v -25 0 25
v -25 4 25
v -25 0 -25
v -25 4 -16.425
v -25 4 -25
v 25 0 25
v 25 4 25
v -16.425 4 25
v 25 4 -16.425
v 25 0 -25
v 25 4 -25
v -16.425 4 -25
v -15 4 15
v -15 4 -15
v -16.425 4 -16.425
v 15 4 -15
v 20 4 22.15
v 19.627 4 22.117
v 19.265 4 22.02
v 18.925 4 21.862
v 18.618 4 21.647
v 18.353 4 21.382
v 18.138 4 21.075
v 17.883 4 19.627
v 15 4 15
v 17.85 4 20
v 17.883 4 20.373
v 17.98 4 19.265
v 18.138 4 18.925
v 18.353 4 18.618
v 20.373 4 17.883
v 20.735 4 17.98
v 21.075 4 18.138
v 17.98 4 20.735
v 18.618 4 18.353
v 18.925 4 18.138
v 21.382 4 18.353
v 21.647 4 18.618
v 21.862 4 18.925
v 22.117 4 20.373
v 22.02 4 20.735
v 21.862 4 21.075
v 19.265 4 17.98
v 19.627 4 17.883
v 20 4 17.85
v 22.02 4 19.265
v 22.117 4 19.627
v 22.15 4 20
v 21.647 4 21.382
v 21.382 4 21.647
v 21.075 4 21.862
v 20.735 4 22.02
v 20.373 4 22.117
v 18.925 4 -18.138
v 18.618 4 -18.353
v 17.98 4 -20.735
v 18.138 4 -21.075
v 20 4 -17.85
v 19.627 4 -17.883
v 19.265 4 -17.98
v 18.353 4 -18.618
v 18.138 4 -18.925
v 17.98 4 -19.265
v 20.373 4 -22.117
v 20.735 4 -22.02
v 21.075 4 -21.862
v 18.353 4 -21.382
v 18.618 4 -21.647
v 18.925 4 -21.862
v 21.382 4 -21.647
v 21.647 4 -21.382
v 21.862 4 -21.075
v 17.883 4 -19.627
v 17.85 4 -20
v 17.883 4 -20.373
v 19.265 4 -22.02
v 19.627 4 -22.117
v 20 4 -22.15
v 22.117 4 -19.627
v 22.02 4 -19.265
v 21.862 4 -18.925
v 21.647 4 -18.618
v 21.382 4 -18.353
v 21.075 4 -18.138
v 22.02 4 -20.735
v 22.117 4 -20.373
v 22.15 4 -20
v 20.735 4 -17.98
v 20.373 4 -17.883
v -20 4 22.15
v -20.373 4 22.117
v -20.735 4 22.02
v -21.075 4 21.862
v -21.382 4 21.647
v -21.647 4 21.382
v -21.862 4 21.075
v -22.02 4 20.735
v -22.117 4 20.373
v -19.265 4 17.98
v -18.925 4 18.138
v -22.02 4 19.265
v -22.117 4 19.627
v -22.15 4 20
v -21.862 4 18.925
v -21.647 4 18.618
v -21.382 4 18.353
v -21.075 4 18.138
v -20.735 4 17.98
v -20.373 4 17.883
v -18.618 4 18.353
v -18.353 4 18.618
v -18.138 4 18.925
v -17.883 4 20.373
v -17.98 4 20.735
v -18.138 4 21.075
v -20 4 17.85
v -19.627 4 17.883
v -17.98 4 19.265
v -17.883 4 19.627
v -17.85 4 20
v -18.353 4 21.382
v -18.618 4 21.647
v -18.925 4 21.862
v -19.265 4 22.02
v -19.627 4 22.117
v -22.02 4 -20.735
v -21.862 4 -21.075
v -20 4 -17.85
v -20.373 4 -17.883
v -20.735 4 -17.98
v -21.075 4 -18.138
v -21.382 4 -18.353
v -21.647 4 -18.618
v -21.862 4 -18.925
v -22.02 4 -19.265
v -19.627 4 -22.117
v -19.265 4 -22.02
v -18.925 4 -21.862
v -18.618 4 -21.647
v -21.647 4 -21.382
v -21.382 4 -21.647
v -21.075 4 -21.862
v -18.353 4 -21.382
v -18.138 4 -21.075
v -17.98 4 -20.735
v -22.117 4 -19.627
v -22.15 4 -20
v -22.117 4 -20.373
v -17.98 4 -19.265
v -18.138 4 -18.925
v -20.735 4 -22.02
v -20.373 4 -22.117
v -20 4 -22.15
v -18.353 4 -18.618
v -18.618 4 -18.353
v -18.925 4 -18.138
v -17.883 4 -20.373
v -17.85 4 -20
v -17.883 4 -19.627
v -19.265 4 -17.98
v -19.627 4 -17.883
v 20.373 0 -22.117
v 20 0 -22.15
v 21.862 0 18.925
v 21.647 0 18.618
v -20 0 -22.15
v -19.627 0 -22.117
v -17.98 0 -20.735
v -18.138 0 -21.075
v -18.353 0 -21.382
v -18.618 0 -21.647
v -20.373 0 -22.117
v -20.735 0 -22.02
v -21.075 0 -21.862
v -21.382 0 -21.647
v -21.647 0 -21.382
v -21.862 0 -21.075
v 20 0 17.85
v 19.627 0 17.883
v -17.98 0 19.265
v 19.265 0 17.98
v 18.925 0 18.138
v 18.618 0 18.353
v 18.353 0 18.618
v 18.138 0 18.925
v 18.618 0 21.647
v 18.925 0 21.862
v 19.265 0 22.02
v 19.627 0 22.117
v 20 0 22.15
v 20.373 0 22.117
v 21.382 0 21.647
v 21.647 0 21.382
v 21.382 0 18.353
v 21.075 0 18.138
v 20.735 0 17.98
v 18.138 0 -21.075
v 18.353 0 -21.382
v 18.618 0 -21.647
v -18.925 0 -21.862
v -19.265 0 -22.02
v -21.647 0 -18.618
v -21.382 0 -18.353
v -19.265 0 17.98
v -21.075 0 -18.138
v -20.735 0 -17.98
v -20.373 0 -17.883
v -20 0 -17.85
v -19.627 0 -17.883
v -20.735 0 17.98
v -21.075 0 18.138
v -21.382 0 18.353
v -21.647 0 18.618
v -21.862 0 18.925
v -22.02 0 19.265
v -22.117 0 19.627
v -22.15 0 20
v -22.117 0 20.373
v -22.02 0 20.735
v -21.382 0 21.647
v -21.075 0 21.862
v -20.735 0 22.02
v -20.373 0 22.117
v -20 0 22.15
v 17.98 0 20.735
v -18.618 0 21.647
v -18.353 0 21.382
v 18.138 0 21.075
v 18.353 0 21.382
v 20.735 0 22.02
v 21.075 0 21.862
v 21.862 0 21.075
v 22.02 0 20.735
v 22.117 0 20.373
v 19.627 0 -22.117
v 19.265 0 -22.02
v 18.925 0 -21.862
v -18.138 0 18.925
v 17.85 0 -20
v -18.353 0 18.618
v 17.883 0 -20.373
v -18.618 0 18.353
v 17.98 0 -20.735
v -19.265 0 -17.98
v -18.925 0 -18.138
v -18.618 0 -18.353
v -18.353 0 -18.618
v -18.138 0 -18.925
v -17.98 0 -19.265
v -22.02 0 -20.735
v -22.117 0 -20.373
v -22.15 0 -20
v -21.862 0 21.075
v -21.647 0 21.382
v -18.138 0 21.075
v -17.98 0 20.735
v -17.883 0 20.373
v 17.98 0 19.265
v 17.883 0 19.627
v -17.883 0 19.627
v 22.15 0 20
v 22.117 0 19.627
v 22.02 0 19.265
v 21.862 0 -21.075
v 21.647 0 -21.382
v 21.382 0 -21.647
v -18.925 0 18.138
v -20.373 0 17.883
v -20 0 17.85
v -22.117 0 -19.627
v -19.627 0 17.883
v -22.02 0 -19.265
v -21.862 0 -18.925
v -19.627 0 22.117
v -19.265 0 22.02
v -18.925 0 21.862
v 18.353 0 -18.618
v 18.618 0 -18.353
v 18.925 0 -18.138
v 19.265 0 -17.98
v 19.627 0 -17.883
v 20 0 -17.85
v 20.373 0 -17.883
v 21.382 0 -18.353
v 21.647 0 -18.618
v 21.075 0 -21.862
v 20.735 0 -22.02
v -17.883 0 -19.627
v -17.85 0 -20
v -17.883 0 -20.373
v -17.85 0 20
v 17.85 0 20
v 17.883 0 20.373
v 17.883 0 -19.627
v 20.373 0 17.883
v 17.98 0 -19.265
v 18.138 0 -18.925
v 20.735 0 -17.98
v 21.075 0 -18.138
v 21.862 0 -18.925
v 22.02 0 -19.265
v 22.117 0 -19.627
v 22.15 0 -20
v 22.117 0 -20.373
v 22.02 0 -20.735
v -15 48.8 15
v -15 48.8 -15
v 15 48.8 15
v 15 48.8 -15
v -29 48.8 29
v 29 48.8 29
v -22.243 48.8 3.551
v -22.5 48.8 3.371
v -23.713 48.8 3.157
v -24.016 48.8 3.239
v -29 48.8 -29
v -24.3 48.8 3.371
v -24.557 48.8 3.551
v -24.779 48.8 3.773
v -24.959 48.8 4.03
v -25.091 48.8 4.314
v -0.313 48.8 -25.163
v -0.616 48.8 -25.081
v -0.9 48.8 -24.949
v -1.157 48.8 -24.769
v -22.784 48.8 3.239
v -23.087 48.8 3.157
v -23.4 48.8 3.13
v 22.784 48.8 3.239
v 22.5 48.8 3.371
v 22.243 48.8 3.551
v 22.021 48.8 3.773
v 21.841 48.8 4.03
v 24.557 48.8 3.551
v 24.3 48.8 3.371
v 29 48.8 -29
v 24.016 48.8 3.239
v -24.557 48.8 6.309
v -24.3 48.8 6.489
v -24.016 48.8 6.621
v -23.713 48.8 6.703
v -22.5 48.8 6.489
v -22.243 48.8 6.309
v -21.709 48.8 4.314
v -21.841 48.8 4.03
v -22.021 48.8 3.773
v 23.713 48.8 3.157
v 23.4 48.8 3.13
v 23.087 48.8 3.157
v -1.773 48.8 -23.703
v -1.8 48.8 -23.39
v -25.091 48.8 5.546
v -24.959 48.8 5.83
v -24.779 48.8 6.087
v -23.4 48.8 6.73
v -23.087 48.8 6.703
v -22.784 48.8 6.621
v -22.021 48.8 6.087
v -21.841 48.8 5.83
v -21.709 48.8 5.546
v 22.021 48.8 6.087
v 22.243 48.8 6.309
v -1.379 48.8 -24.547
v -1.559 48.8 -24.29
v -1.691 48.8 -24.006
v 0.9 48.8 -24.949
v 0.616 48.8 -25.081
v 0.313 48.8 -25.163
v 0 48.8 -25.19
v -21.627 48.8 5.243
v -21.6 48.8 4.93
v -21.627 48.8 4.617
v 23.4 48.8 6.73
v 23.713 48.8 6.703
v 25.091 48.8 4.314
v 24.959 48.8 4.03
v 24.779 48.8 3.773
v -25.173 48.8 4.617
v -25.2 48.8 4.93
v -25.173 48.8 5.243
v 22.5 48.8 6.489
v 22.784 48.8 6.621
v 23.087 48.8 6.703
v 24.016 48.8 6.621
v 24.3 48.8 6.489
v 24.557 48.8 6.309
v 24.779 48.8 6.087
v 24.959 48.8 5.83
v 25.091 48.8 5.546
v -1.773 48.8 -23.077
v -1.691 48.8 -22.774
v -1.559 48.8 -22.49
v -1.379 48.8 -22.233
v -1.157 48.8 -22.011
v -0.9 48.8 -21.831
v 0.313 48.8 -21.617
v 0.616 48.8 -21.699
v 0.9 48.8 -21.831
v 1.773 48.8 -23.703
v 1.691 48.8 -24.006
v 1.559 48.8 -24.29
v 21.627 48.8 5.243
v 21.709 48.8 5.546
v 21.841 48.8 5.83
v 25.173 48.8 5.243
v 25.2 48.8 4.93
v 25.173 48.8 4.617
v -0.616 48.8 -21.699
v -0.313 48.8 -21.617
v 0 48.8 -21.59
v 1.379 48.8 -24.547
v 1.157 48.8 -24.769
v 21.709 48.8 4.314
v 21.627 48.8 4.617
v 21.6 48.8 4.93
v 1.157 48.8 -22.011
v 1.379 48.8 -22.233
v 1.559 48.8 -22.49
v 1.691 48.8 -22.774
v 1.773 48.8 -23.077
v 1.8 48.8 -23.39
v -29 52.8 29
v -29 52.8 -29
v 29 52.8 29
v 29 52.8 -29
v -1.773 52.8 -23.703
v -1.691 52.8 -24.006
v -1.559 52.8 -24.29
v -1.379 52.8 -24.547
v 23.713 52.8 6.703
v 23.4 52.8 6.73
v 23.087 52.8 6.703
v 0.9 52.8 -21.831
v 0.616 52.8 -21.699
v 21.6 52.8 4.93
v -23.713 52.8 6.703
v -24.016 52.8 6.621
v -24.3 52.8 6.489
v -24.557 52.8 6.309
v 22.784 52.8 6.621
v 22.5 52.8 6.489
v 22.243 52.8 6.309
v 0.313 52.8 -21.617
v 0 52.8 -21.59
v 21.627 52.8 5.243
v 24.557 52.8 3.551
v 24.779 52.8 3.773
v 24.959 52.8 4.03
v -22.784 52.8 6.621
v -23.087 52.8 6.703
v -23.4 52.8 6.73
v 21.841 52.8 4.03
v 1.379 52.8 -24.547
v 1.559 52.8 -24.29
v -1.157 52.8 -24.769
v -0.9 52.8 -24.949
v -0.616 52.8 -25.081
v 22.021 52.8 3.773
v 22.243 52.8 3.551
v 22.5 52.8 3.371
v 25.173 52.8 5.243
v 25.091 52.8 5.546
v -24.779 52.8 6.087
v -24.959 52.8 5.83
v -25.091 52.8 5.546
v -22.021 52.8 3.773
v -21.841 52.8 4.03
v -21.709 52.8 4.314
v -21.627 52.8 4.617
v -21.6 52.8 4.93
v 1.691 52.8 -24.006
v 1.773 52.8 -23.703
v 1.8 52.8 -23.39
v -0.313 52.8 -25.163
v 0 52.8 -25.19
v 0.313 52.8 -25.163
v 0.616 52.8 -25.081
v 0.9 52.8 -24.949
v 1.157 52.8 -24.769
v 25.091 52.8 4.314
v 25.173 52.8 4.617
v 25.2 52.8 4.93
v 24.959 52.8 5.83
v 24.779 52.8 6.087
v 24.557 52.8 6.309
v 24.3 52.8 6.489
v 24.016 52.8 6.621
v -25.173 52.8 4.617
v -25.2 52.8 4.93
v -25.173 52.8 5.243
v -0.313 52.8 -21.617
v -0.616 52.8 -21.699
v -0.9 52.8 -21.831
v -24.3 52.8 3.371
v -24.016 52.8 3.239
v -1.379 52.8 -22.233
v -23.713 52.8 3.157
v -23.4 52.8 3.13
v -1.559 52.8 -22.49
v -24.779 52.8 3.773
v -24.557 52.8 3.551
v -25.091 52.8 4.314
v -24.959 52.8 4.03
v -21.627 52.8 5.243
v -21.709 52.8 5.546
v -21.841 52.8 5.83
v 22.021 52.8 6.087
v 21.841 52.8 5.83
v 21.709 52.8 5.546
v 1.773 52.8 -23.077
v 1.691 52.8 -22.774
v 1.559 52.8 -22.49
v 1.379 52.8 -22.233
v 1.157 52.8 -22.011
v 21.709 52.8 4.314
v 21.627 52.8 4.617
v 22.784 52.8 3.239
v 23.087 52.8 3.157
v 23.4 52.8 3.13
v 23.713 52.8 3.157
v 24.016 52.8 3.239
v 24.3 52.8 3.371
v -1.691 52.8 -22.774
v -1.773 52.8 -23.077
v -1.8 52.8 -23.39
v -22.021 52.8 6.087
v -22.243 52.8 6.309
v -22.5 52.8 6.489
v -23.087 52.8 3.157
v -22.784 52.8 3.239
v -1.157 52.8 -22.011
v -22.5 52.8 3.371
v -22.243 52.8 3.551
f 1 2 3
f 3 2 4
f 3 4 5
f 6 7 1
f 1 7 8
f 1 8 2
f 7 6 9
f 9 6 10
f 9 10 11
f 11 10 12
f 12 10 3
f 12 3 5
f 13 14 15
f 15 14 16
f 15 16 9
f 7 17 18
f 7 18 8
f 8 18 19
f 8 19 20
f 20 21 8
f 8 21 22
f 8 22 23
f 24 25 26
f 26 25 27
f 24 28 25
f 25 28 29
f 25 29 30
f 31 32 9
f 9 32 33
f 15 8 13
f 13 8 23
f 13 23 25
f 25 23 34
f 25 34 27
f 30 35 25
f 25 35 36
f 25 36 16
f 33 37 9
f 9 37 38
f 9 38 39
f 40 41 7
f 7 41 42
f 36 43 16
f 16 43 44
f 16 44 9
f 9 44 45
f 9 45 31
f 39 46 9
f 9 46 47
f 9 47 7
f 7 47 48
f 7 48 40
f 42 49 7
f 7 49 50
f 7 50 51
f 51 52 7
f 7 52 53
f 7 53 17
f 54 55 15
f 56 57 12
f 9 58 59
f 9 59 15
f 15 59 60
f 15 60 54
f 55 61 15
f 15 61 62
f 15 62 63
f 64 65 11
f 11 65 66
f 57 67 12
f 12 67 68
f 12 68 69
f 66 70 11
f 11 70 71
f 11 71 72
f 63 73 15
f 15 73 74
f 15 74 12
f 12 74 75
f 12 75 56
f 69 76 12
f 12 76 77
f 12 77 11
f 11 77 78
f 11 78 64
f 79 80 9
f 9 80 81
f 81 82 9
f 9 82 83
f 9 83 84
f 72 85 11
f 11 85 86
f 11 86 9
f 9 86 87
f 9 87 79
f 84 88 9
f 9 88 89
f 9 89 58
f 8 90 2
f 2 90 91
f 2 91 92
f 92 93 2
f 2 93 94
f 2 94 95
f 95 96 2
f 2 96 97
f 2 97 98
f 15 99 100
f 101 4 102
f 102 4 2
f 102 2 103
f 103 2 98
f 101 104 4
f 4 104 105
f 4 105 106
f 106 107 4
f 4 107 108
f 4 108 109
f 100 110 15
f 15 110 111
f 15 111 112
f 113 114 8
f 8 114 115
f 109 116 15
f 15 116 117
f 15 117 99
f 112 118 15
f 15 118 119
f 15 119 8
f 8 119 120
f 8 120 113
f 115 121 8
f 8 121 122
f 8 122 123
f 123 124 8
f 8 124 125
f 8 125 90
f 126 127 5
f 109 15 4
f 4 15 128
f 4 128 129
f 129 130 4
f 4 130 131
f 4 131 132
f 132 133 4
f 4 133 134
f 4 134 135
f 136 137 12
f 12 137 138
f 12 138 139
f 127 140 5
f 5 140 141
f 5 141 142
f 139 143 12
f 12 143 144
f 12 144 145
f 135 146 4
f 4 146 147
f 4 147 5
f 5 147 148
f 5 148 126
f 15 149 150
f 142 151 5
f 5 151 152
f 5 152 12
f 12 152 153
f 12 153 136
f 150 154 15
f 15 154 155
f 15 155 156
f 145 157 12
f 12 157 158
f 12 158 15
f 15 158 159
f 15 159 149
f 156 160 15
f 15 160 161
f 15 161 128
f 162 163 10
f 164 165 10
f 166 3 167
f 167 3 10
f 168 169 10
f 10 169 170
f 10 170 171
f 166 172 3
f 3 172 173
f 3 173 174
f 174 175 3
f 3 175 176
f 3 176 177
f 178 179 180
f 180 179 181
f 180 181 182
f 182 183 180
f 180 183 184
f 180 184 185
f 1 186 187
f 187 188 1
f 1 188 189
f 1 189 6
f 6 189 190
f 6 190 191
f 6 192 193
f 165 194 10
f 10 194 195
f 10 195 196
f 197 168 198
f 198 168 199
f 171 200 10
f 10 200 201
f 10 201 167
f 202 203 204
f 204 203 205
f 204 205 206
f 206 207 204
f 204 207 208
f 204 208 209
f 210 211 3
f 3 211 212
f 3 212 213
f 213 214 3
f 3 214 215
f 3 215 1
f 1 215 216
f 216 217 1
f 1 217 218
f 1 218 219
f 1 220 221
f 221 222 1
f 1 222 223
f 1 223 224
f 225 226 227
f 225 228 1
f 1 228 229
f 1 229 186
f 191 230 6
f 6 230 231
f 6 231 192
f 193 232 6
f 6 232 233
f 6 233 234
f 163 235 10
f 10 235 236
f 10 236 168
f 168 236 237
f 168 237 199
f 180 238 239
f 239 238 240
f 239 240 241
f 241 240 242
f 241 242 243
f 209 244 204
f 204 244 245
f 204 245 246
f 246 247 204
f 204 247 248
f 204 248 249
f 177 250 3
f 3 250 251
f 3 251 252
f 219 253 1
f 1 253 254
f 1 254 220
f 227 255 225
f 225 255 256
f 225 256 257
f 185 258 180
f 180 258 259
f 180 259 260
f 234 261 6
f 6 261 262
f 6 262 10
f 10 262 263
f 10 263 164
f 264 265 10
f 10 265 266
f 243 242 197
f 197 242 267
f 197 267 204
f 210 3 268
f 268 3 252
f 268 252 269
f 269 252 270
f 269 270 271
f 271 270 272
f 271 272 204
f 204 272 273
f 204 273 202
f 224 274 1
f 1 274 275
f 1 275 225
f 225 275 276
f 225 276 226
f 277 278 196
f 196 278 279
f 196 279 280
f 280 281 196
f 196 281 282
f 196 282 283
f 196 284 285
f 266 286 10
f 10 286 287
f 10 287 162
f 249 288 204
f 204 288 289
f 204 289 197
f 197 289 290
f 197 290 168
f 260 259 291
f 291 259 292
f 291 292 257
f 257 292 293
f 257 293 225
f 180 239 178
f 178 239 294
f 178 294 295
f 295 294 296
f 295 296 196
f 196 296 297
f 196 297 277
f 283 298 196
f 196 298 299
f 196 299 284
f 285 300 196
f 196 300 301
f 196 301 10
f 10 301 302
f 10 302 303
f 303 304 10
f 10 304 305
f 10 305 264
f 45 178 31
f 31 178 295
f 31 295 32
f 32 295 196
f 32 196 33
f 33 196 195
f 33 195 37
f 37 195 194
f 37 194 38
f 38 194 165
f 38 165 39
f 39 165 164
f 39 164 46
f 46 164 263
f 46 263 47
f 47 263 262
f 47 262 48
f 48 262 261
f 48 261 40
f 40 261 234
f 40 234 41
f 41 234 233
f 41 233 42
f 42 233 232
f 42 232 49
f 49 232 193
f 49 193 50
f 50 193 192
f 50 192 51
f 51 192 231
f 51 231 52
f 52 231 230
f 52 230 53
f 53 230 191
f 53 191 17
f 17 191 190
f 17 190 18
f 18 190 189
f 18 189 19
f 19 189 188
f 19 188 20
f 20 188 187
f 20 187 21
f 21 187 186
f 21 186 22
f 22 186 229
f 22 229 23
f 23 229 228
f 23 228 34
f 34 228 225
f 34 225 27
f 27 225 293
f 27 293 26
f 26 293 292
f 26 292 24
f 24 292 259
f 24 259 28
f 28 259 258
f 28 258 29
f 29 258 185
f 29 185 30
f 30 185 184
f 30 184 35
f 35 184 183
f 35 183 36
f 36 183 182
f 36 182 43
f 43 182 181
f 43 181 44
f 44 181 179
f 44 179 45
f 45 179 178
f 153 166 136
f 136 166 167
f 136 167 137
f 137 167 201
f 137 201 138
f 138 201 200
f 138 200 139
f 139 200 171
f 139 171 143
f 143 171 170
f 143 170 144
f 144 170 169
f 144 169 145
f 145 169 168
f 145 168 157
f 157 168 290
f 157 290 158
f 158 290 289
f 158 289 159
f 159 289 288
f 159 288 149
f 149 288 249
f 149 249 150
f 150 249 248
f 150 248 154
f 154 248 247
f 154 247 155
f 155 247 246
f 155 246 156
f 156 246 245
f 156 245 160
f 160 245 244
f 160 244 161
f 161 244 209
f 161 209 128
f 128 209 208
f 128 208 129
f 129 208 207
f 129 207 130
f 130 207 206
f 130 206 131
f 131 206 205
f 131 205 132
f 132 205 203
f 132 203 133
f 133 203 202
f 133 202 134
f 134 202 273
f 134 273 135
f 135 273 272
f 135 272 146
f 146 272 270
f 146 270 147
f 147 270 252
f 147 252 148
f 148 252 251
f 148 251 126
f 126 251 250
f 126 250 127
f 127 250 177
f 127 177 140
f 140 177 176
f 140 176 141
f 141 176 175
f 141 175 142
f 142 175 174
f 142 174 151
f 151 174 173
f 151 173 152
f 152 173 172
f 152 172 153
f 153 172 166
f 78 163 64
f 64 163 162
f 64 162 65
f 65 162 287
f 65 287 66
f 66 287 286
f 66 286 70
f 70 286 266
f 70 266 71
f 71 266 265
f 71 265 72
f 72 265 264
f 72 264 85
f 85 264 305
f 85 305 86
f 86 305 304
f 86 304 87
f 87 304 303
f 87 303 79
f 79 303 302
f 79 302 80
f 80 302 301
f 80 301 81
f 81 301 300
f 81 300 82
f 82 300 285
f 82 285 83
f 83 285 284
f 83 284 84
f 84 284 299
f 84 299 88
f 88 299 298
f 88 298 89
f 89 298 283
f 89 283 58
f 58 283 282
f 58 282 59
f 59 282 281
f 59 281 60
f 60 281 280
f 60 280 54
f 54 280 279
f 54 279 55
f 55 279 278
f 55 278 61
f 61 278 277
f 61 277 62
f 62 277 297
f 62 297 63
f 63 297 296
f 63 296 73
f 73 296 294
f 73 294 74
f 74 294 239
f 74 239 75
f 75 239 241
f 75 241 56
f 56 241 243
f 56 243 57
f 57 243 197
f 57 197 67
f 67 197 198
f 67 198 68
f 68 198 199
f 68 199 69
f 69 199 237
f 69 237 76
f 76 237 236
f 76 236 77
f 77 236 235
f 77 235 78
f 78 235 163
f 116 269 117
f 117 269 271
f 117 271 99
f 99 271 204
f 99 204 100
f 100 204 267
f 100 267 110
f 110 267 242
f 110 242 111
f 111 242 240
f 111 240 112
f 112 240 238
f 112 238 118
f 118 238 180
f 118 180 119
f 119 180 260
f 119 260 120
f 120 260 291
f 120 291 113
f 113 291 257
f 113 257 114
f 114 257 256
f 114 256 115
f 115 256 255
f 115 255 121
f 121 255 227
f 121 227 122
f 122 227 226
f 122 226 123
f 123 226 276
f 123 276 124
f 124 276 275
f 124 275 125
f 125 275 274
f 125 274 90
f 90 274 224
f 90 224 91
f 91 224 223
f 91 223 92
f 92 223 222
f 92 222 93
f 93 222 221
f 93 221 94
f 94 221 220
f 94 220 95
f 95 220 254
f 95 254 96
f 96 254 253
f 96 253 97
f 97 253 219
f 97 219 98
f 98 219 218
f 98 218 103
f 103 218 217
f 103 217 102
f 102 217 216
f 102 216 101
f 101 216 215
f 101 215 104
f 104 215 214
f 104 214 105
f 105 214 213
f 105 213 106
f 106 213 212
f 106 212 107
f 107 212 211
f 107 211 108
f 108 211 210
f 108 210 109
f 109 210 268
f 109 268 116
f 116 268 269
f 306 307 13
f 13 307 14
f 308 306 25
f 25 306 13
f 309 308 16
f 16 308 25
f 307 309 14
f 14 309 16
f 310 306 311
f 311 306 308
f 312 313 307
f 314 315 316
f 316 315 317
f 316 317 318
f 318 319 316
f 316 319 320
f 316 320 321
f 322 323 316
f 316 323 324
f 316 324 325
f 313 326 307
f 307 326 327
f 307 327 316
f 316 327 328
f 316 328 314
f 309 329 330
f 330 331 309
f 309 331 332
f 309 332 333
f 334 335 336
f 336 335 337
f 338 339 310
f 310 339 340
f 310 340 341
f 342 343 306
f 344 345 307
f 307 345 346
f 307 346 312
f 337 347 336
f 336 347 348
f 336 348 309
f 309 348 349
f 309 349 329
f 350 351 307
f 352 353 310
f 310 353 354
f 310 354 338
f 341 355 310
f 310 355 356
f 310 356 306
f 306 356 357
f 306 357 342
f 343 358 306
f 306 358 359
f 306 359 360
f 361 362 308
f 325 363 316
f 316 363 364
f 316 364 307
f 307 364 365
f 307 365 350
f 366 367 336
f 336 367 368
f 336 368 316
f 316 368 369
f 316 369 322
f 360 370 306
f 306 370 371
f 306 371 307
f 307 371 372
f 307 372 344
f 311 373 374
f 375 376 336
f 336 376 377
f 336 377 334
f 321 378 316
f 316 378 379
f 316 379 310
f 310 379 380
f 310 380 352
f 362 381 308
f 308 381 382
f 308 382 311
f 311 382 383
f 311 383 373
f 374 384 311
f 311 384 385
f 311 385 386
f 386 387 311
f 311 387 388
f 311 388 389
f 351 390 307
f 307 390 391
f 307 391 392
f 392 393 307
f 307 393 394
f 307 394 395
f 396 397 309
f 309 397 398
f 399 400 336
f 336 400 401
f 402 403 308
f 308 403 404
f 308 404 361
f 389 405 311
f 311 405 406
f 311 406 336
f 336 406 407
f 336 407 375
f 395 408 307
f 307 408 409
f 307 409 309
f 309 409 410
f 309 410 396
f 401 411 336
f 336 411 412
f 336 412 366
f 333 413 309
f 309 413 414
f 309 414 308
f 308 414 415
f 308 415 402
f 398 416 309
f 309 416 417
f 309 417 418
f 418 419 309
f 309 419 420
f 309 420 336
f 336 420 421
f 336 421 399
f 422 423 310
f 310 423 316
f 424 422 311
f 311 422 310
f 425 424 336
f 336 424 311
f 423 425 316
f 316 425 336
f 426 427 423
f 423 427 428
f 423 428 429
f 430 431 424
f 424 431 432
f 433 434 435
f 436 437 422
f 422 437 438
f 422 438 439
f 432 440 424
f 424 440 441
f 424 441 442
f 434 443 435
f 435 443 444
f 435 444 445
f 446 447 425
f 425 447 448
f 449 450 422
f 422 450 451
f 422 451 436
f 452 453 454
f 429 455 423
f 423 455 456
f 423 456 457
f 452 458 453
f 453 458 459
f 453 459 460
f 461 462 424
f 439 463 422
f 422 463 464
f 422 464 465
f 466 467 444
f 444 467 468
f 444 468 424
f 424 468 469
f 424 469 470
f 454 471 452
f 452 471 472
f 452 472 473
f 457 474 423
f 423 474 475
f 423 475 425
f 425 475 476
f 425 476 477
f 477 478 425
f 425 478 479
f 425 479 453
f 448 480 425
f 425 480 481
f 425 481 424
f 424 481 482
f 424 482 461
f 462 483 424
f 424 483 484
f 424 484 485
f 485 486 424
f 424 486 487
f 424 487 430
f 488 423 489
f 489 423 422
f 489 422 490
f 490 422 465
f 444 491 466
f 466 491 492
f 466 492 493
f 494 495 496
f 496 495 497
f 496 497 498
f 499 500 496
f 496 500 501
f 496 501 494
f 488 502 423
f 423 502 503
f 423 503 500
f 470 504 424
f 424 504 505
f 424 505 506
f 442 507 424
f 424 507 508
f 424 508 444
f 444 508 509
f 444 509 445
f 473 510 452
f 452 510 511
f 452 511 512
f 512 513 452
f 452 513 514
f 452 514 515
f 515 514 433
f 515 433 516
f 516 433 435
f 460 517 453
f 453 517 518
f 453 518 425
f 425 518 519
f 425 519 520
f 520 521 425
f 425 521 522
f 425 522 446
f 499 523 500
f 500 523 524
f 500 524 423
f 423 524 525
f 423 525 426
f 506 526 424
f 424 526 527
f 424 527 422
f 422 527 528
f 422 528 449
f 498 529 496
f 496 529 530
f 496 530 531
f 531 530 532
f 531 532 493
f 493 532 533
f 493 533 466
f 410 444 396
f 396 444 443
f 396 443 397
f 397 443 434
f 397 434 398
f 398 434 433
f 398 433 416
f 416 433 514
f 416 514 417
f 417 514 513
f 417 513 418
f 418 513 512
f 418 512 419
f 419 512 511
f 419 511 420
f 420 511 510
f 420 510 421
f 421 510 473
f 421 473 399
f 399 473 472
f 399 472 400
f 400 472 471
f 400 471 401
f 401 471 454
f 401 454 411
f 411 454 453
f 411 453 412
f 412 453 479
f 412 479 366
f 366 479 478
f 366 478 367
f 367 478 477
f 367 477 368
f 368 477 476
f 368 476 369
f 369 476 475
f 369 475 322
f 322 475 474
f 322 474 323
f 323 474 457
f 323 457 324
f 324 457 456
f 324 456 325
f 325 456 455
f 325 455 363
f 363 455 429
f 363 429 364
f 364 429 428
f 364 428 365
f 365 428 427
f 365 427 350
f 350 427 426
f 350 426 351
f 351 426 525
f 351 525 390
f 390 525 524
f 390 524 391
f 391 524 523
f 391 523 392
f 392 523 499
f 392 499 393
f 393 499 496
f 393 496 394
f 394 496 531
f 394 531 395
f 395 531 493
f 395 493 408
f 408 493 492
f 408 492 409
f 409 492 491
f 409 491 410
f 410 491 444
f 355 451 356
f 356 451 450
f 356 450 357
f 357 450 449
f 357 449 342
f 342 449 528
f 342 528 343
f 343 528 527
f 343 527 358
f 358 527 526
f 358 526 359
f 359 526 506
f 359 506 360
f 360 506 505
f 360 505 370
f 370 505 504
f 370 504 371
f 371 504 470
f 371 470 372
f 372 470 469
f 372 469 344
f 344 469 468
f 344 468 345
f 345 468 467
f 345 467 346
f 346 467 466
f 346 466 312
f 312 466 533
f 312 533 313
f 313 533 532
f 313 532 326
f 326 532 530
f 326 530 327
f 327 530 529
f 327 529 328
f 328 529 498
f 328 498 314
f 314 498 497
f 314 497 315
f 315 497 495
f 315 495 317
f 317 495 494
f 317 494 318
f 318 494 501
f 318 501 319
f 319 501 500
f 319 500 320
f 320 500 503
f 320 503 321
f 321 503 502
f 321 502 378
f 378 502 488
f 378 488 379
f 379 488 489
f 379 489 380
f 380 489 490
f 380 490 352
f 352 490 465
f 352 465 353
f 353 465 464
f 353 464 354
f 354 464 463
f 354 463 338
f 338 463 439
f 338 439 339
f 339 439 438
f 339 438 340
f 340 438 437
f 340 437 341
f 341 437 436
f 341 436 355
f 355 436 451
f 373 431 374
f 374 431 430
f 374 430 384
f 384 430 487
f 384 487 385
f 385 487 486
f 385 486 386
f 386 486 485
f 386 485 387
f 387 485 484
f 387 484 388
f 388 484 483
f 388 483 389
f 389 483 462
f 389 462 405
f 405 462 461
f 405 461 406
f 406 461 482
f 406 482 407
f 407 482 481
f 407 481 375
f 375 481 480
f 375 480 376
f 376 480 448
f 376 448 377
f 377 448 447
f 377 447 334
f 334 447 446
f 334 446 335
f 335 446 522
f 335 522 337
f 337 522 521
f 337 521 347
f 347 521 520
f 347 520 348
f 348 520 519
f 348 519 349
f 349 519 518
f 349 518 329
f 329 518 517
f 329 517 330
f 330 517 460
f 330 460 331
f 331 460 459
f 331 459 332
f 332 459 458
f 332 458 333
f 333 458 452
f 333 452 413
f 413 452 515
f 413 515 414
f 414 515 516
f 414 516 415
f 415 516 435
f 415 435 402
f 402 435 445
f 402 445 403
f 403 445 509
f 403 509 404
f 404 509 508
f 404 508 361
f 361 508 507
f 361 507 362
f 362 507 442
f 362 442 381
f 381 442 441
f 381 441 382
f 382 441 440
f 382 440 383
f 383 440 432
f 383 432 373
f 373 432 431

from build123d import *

# Parameters (mm, degrees)
SK_BASE_W             = 50
SK_BASE_H             = 50
EX_BASE_DEPTH         = 4
SK_DECKHOLES_R        = 2.15
CUT_DECKHOLES_DEPTH   = 4
SK_COLUMN_W           = 30
SK_COLUMN_H           = 30
EX_COLUMN_DEPTH       = 44.8
SK_TOP_W              = 58
SK_TOP_H              = 58
EX_TOP_DEPTH          = 4
SK_INSERTS_M25_R      = 1.8
CUT_INSERTS_M25_DEPTH = 4


with BuildPart() as part:
    # SK_Base → EX_Base (new body)
    with BuildSketch(Plane(origin=(0, 0, 0), x_dir=(1, 0, 0), z_dir=(0, 1, 0))):
        Rectangle(SK_BASE_W, SK_BASE_H)
    extrude(amount=EX_BASE_DEPTH)

    # SK_DeckHoles → CUT_DeckHoles (cut)
    with BuildSketch(Plane(origin=(0, 0, 0), x_dir=(1, 0, 0), z_dir=(0, 1, 0))):
        with Locations((20, -20)):
            Circle(SK_DECKHOLES_R)
        with Locations((-20, -20)):
            Circle(SK_DECKHOLES_R)
        with Locations((20, 20)):
            Circle(SK_DECKHOLES_R)
        with Locations((-20, 20)):
            Circle(SK_DECKHOLES_R)
    extrude(amount=CUT_DECKHOLES_DEPTH, mode=Mode.SUBTRACT)

    # SK_Column → EX_Column (add)
    with BuildSketch(Plane(origin=(0, 4, 0), x_dir=(1, 0, 0), z_dir=(0, 1, 0))):
        Rectangle(SK_COLUMN_W, SK_COLUMN_H)
    extrude(amount=EX_COLUMN_DEPTH)

    # SK_Top → EX_Top (add)
    with BuildSketch(Plane(origin=(0, 48.8, 0), x_dir=(1, 0, 0), z_dir=(0, 1, 0))):
        Rectangle(SK_TOP_W, SK_TOP_H)
    extrude(amount=EX_TOP_DEPTH)

    # SK_Inserts_M25 → CUT_Inserts_M25 (cut)
    with BuildSketch(Plane(origin=(0, 52.8, 0), x_dir=(1, 0, 0), z_dir=(0, 1, 0))):
        with Locations((23.4, -4.93)):
            Circle(SK_INSERTS_M25_R)
        with Locations((-23.4, -4.93)):
            Circle(SK_INSERTS_M25_R)
        with Locations((0, 23.39)):
            Circle(SK_INSERTS_M25_R)
    extrude(amount=-CUT_INSERTS_M25_DEPTH, mode=Mode.SUBTRACT)


solid = part.part
